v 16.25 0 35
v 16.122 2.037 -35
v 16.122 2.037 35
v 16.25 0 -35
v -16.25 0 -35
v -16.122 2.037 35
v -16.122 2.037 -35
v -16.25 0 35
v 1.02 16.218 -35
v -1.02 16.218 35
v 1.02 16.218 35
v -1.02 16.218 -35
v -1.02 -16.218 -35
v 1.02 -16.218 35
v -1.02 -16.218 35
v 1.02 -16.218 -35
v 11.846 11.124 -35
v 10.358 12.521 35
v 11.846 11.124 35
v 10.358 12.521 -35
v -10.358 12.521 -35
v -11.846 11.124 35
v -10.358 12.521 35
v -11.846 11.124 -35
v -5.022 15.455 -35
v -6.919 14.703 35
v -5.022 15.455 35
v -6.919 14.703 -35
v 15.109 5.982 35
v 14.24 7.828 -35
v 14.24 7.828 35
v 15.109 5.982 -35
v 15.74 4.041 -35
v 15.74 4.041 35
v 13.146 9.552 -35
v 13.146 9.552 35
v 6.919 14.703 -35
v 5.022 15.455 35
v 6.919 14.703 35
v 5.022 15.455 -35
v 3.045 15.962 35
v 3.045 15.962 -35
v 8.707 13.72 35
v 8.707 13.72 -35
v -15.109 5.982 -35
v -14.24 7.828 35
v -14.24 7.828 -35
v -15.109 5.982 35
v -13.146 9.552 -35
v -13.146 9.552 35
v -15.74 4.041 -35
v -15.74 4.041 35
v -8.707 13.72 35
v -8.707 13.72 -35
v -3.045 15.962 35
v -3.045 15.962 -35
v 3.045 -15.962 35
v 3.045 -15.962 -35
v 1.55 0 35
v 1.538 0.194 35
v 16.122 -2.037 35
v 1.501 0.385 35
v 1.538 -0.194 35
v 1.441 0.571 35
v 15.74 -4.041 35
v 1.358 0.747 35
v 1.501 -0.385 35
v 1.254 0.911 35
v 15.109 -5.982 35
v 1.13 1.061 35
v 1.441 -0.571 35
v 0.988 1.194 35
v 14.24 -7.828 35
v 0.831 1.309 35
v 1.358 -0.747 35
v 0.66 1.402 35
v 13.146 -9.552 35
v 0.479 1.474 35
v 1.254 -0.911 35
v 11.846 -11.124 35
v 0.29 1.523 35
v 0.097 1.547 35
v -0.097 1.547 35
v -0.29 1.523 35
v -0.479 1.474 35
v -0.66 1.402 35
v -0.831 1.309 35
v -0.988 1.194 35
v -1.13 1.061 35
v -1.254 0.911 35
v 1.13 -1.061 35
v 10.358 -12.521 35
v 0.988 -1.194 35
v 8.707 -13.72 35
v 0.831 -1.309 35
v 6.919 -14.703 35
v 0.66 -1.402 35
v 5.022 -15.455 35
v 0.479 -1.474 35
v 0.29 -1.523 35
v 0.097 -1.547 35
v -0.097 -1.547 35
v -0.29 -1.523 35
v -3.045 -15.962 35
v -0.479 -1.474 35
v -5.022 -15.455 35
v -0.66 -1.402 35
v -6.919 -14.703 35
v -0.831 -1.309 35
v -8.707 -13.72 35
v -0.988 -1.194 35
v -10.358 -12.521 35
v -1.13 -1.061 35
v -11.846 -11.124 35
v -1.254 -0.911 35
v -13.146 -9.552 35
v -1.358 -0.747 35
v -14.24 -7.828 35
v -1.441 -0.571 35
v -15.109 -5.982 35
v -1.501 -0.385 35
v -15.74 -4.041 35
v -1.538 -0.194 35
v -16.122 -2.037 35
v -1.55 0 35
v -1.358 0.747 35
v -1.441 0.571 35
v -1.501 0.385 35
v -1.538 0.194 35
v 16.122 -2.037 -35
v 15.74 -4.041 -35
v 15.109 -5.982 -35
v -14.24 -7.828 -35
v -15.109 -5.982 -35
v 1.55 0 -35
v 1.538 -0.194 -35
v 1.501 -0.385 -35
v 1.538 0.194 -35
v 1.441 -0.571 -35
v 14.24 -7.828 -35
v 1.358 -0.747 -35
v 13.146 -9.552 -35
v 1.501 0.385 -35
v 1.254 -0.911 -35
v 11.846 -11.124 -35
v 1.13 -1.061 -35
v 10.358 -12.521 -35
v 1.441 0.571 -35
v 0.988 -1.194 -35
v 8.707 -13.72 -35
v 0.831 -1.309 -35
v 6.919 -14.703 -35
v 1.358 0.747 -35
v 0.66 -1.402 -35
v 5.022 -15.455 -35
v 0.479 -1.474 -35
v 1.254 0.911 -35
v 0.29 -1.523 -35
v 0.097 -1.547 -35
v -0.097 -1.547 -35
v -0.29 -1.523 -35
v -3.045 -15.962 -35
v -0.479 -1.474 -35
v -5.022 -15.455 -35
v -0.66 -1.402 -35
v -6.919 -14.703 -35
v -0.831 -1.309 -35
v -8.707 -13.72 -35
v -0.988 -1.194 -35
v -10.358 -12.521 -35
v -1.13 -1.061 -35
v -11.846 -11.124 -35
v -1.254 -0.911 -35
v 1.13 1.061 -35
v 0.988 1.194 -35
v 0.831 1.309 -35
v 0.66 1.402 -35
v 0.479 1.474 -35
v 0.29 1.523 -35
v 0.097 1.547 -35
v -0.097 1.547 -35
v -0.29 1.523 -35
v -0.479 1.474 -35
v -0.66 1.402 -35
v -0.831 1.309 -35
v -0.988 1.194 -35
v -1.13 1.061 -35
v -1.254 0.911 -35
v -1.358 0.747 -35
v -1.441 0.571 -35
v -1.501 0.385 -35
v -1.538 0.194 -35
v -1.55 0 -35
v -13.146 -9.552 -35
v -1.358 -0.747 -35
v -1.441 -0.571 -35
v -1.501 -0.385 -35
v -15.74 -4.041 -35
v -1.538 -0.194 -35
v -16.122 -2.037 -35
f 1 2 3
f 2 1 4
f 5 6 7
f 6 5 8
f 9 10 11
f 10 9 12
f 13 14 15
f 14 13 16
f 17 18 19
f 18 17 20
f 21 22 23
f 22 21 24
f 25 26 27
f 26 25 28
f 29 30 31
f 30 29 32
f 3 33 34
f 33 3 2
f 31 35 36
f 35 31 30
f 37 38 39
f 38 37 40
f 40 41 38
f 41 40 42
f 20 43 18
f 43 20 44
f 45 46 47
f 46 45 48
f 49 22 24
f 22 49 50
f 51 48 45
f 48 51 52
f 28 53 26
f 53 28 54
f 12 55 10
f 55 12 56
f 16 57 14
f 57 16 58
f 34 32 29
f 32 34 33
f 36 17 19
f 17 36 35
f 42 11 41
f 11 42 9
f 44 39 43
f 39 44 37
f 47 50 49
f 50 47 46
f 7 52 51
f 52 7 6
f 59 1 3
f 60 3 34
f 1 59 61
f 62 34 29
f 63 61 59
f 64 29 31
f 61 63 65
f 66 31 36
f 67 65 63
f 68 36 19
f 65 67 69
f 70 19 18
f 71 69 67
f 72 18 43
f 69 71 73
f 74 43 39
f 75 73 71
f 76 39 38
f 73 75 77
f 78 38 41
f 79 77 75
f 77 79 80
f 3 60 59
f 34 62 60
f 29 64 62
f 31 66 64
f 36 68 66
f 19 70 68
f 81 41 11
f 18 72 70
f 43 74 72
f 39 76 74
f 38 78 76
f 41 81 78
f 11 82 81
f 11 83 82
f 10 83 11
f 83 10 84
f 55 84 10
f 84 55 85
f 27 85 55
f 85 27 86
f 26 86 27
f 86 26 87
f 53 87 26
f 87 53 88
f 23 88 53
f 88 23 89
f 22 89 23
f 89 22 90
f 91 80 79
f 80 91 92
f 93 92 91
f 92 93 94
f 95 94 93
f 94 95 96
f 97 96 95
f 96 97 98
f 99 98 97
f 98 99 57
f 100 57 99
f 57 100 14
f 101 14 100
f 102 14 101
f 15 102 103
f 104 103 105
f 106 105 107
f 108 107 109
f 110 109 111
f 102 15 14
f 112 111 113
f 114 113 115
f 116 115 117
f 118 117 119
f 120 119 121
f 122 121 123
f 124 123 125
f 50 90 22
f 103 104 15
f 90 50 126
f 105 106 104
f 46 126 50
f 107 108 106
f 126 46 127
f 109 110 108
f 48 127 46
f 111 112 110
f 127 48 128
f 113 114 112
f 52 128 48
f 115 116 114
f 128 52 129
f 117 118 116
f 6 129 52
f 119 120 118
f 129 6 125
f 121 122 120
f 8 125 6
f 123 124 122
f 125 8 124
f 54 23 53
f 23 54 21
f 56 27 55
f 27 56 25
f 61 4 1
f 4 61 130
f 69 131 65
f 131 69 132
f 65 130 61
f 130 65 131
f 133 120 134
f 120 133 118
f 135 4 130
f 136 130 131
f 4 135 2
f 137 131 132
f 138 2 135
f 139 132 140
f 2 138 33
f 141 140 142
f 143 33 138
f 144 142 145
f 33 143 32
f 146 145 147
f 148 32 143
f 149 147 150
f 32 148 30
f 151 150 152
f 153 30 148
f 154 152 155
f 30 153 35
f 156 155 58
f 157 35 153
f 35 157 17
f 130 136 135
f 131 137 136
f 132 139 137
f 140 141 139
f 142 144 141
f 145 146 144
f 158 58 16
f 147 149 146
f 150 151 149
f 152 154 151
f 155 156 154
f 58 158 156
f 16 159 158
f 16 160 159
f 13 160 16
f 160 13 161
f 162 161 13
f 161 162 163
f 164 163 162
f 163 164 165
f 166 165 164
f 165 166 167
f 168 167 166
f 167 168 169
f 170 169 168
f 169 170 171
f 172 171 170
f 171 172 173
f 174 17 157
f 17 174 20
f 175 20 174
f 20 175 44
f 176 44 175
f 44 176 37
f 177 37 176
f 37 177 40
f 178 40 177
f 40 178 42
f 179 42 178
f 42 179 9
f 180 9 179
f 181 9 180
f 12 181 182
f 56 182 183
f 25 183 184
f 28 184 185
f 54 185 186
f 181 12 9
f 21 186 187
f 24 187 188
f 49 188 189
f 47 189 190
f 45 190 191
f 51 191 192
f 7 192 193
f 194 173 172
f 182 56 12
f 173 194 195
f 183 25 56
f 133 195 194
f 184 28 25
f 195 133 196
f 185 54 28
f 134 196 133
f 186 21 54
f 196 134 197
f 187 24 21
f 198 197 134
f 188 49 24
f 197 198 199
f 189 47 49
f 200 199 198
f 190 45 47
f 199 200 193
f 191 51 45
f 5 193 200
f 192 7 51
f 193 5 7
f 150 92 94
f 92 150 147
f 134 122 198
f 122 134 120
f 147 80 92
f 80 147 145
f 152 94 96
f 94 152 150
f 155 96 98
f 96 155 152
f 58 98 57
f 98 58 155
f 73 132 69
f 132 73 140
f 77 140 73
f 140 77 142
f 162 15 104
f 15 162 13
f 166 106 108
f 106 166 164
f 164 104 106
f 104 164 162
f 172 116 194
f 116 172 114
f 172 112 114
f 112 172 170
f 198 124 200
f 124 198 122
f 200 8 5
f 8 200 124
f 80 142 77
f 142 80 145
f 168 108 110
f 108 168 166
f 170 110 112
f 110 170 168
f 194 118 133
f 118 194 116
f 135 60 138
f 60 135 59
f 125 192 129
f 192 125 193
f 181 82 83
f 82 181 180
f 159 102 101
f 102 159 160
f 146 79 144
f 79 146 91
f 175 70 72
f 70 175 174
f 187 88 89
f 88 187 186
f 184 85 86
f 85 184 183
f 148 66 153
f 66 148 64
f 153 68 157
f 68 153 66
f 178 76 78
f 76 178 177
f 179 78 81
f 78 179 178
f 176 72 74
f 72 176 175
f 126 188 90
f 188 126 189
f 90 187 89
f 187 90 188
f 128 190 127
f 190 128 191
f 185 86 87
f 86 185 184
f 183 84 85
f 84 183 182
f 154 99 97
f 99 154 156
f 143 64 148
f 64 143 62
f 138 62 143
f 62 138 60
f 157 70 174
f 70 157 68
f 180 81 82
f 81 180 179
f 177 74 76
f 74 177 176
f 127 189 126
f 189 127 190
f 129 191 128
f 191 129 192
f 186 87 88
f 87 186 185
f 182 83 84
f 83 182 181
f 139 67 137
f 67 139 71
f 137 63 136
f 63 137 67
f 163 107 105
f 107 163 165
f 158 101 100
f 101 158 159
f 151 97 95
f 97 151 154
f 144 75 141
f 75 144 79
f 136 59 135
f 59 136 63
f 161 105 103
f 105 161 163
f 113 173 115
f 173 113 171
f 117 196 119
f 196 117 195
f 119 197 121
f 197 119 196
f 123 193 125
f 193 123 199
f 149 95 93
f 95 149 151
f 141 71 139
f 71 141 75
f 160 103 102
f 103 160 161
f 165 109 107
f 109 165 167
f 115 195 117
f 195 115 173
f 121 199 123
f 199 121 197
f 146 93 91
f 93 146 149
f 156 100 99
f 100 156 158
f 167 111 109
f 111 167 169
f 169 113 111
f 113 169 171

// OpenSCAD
$fn = 50;


difference() {
	union() {
		translate(v = [0, 0, -35.0000000000]) {
			cylinder(h = 70, r = 16.2500000000);
		}
	}
	union() {
		translate(v = [0, 0, -100.0000000000]) {
			cylinder(h = 200, r = 1.5500000000);
		}
	}
}
